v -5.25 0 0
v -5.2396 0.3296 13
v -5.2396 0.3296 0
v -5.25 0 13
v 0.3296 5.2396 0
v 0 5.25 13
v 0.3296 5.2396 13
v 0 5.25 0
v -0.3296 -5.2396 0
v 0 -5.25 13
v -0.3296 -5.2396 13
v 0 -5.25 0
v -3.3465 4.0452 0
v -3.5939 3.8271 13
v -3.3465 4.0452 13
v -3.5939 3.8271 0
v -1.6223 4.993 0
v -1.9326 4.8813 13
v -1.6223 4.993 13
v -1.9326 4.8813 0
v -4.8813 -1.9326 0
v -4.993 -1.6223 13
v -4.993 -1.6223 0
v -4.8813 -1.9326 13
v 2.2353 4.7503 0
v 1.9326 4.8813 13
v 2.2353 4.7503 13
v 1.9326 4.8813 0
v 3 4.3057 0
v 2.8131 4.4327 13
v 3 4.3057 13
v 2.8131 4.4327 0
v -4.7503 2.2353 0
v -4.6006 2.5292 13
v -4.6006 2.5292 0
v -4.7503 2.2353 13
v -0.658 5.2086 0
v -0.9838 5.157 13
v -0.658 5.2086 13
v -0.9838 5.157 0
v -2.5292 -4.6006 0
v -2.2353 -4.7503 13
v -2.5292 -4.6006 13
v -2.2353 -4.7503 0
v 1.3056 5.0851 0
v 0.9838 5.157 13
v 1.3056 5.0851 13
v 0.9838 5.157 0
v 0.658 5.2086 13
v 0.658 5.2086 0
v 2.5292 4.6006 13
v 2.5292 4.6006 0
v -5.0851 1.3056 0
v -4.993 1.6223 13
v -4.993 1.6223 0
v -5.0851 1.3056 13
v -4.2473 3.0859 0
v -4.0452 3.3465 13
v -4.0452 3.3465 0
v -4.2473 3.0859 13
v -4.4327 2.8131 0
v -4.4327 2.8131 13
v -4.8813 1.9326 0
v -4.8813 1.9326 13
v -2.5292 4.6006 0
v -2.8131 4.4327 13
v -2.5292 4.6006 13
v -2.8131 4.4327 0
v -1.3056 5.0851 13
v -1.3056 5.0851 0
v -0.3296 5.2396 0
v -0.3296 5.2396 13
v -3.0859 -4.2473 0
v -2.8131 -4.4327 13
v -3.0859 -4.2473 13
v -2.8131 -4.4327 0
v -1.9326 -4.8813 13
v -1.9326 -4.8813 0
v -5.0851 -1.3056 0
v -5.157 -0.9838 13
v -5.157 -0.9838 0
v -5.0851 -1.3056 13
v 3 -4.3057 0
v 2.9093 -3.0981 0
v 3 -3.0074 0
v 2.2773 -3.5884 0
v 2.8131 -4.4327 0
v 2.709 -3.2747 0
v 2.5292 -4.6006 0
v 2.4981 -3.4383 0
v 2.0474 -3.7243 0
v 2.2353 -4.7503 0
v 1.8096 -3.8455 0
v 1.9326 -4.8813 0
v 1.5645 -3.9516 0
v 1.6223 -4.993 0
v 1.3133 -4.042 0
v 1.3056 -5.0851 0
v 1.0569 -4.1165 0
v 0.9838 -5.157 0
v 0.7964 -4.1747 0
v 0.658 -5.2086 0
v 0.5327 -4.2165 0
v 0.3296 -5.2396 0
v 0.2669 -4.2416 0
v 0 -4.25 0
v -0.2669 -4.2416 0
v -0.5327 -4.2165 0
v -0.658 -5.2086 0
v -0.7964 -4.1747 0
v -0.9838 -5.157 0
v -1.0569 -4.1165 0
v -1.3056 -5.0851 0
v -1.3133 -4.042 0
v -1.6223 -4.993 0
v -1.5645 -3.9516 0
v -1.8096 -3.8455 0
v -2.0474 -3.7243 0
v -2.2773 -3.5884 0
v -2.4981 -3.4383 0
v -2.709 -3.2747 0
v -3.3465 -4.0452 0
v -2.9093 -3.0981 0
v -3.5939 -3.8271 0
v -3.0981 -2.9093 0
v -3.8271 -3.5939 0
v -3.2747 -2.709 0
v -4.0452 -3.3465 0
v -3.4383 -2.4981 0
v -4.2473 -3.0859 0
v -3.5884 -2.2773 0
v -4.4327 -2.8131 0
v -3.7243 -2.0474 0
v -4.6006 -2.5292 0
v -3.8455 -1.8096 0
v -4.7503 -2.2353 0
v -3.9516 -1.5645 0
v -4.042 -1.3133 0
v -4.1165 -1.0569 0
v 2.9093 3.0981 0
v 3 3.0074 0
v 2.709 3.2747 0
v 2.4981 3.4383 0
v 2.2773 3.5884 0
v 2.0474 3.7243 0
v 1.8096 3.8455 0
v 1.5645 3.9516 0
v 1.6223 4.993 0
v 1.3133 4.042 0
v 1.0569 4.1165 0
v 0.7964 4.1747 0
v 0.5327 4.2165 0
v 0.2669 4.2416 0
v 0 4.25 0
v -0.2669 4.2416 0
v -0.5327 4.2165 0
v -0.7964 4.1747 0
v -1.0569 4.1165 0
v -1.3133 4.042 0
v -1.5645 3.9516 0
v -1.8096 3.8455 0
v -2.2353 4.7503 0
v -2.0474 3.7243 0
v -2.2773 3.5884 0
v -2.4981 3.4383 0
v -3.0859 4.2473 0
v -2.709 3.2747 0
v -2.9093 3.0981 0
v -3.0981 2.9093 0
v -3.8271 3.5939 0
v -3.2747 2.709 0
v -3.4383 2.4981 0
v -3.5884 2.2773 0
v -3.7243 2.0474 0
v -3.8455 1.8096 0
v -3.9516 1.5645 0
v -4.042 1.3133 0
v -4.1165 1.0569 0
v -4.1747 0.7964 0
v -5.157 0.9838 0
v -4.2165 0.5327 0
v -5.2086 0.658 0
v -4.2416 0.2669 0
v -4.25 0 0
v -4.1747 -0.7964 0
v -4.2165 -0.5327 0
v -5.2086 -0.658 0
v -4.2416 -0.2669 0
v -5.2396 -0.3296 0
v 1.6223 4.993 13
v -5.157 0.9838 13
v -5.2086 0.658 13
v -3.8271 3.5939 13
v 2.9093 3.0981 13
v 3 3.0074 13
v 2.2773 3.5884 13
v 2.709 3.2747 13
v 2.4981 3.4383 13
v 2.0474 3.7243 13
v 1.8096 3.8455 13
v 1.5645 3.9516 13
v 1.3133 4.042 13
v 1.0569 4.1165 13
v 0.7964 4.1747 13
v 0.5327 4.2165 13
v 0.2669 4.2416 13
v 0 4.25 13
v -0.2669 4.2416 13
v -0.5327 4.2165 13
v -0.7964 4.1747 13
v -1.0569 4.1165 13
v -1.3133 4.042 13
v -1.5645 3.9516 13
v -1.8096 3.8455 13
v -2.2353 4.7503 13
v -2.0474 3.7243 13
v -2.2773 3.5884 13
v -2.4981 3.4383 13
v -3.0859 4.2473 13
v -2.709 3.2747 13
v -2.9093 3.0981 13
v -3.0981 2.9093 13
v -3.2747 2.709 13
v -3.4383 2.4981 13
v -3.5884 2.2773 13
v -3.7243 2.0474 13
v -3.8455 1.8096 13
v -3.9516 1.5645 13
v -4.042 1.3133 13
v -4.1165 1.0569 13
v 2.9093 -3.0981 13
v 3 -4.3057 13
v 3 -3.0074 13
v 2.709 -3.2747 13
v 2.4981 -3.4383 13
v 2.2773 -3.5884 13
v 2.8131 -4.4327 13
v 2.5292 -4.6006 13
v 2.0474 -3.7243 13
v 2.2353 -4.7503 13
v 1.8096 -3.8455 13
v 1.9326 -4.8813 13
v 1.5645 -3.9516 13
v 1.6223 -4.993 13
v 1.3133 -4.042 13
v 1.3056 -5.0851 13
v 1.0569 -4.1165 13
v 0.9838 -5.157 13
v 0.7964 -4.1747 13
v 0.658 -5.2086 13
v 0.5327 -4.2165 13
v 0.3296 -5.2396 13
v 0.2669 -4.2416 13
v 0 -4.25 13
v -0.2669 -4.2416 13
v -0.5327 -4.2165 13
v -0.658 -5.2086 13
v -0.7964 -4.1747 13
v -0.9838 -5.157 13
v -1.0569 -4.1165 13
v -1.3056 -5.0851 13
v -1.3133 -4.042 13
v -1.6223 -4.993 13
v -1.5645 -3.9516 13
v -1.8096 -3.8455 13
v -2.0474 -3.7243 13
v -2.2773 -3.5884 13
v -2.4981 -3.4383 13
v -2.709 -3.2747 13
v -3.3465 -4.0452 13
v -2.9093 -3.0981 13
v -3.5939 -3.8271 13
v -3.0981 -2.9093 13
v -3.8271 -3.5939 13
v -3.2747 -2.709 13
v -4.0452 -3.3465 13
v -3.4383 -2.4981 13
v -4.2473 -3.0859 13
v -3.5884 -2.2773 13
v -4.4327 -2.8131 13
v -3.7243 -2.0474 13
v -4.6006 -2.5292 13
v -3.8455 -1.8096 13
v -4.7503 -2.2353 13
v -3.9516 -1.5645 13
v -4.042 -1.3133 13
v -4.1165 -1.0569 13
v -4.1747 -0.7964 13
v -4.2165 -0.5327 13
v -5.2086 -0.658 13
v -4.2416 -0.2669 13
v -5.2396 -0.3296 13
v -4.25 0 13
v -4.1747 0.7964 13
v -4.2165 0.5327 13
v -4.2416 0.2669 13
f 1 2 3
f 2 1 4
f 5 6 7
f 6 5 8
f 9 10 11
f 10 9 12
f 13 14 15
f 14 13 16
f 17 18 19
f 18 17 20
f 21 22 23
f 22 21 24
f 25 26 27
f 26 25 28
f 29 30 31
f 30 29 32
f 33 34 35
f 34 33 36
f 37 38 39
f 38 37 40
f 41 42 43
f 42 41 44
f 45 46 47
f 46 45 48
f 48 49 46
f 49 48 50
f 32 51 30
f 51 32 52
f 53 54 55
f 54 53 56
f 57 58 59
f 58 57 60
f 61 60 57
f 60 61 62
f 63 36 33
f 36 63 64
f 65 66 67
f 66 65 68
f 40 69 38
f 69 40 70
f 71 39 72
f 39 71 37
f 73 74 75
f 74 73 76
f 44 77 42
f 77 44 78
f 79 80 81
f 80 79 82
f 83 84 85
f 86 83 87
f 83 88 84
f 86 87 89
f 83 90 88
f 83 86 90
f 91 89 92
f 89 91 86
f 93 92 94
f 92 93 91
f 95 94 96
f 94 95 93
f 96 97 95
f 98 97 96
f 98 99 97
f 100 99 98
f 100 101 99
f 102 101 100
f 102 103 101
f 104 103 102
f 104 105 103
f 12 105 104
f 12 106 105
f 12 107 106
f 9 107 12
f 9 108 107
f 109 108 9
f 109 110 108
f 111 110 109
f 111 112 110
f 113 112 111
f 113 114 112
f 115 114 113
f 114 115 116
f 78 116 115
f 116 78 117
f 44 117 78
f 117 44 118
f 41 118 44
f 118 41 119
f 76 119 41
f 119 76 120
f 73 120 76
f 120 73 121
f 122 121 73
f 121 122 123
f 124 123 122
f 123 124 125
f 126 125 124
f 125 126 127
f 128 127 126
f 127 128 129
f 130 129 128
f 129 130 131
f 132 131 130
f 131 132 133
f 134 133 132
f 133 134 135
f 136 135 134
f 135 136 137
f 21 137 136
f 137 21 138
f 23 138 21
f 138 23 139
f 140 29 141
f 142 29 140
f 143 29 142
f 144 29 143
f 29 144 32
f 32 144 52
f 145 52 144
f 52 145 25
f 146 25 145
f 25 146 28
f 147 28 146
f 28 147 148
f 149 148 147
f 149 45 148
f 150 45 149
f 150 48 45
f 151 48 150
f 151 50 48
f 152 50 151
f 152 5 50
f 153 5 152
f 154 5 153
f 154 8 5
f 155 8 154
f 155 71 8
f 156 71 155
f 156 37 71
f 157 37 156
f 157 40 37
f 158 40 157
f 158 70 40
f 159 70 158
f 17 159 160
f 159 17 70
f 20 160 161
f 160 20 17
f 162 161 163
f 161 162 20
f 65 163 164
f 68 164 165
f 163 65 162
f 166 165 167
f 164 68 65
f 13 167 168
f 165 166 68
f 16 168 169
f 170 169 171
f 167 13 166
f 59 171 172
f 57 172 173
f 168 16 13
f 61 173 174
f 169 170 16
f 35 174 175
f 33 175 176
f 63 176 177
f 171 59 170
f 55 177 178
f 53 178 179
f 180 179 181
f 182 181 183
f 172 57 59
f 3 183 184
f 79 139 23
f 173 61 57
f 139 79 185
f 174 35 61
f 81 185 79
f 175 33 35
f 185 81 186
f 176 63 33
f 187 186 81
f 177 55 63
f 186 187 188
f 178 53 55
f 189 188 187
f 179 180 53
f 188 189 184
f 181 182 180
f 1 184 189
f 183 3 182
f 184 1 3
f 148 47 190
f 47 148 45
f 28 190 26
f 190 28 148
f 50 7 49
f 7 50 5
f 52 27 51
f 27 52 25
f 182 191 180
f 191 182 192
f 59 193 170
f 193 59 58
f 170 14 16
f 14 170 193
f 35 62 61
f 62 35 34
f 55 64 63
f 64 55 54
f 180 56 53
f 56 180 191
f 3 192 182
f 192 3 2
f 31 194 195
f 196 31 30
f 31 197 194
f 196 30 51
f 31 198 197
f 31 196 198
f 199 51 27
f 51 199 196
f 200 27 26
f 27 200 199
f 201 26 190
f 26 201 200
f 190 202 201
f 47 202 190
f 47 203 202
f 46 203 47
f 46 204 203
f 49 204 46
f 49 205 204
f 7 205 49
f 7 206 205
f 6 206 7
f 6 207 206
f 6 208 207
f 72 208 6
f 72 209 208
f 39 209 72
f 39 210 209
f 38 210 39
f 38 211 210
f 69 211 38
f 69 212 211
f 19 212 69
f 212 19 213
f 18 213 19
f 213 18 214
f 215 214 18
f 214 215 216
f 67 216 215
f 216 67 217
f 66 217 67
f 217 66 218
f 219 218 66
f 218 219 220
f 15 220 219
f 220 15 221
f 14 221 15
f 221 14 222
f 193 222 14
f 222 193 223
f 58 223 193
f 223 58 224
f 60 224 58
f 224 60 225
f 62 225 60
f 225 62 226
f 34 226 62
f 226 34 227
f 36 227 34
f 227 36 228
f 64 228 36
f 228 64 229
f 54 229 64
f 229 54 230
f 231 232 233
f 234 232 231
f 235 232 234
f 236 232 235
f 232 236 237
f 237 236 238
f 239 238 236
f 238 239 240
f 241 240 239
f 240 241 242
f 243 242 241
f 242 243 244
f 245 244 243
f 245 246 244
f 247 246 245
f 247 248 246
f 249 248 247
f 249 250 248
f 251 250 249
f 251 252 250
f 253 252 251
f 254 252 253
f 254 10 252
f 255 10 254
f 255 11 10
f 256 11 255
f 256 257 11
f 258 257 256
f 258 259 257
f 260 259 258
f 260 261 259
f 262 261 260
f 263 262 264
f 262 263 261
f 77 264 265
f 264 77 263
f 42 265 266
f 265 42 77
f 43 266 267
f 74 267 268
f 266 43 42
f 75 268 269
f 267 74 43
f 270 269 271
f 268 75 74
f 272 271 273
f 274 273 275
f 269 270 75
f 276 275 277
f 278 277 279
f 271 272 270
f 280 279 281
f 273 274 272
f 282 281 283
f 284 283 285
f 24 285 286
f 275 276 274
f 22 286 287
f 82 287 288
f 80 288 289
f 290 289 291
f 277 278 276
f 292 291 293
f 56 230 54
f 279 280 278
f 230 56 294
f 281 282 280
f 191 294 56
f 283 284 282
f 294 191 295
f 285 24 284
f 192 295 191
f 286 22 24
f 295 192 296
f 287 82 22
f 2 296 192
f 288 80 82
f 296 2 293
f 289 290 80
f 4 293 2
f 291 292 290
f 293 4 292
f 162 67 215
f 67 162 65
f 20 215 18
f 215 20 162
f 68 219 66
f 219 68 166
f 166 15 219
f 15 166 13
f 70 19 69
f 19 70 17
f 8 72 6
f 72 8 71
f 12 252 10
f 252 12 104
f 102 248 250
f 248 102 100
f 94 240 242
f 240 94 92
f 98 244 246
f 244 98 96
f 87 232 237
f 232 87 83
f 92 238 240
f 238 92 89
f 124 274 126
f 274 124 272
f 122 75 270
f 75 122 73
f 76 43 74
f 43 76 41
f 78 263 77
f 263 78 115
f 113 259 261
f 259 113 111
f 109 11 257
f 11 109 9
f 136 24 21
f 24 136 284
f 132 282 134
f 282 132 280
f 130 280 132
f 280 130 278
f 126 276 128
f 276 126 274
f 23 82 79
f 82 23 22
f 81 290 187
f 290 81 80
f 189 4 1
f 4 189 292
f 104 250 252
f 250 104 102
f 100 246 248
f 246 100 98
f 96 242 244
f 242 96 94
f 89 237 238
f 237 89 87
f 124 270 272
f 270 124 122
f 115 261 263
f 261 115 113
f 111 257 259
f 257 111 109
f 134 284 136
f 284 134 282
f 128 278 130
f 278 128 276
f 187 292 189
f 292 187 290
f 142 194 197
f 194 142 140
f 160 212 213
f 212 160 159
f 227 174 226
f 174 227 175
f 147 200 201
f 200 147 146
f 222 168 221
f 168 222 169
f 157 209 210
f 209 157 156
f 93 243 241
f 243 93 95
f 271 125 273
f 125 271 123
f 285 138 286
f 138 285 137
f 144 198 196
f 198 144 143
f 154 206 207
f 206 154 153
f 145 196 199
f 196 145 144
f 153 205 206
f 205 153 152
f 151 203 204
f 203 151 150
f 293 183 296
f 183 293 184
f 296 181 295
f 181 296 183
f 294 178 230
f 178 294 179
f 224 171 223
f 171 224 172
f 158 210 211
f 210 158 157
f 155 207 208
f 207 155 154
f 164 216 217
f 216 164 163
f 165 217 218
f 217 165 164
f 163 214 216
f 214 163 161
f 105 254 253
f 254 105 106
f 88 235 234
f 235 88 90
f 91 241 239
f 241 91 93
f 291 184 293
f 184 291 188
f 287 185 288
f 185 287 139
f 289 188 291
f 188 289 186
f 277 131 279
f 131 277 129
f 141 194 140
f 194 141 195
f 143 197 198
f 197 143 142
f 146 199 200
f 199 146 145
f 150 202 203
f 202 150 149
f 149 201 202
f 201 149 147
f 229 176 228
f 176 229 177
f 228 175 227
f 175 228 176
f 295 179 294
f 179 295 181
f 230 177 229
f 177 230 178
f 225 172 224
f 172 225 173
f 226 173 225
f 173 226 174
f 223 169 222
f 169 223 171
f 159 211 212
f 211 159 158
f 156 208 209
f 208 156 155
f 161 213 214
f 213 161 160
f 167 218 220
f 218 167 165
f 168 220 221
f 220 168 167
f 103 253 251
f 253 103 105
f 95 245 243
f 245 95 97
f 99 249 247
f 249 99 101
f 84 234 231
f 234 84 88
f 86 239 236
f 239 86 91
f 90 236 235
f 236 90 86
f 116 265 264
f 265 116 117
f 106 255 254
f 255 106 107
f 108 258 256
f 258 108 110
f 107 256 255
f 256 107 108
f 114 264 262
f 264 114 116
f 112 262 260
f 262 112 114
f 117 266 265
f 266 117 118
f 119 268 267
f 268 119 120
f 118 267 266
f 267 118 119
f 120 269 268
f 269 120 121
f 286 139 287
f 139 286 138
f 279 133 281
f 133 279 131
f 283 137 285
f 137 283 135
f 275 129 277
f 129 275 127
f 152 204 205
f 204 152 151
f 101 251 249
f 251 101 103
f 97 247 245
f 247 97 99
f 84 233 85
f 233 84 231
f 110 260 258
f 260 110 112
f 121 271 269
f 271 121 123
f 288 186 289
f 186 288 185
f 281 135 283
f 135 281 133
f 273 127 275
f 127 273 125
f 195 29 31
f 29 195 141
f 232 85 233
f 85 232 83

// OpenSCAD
height = 13;
outer_diam = 10.5 / 2;
inner_diam = 8.5 / 2;

$fn = 100;

difference()
{
    cylinder(h = height, r = outer_diam);
    cylinder(h = height, r = inner_diam);
    translate([3, -outer_diam, 0])
    {
        cube(size = [outer_diam, 2*outer_diam, height]);
    }
}
